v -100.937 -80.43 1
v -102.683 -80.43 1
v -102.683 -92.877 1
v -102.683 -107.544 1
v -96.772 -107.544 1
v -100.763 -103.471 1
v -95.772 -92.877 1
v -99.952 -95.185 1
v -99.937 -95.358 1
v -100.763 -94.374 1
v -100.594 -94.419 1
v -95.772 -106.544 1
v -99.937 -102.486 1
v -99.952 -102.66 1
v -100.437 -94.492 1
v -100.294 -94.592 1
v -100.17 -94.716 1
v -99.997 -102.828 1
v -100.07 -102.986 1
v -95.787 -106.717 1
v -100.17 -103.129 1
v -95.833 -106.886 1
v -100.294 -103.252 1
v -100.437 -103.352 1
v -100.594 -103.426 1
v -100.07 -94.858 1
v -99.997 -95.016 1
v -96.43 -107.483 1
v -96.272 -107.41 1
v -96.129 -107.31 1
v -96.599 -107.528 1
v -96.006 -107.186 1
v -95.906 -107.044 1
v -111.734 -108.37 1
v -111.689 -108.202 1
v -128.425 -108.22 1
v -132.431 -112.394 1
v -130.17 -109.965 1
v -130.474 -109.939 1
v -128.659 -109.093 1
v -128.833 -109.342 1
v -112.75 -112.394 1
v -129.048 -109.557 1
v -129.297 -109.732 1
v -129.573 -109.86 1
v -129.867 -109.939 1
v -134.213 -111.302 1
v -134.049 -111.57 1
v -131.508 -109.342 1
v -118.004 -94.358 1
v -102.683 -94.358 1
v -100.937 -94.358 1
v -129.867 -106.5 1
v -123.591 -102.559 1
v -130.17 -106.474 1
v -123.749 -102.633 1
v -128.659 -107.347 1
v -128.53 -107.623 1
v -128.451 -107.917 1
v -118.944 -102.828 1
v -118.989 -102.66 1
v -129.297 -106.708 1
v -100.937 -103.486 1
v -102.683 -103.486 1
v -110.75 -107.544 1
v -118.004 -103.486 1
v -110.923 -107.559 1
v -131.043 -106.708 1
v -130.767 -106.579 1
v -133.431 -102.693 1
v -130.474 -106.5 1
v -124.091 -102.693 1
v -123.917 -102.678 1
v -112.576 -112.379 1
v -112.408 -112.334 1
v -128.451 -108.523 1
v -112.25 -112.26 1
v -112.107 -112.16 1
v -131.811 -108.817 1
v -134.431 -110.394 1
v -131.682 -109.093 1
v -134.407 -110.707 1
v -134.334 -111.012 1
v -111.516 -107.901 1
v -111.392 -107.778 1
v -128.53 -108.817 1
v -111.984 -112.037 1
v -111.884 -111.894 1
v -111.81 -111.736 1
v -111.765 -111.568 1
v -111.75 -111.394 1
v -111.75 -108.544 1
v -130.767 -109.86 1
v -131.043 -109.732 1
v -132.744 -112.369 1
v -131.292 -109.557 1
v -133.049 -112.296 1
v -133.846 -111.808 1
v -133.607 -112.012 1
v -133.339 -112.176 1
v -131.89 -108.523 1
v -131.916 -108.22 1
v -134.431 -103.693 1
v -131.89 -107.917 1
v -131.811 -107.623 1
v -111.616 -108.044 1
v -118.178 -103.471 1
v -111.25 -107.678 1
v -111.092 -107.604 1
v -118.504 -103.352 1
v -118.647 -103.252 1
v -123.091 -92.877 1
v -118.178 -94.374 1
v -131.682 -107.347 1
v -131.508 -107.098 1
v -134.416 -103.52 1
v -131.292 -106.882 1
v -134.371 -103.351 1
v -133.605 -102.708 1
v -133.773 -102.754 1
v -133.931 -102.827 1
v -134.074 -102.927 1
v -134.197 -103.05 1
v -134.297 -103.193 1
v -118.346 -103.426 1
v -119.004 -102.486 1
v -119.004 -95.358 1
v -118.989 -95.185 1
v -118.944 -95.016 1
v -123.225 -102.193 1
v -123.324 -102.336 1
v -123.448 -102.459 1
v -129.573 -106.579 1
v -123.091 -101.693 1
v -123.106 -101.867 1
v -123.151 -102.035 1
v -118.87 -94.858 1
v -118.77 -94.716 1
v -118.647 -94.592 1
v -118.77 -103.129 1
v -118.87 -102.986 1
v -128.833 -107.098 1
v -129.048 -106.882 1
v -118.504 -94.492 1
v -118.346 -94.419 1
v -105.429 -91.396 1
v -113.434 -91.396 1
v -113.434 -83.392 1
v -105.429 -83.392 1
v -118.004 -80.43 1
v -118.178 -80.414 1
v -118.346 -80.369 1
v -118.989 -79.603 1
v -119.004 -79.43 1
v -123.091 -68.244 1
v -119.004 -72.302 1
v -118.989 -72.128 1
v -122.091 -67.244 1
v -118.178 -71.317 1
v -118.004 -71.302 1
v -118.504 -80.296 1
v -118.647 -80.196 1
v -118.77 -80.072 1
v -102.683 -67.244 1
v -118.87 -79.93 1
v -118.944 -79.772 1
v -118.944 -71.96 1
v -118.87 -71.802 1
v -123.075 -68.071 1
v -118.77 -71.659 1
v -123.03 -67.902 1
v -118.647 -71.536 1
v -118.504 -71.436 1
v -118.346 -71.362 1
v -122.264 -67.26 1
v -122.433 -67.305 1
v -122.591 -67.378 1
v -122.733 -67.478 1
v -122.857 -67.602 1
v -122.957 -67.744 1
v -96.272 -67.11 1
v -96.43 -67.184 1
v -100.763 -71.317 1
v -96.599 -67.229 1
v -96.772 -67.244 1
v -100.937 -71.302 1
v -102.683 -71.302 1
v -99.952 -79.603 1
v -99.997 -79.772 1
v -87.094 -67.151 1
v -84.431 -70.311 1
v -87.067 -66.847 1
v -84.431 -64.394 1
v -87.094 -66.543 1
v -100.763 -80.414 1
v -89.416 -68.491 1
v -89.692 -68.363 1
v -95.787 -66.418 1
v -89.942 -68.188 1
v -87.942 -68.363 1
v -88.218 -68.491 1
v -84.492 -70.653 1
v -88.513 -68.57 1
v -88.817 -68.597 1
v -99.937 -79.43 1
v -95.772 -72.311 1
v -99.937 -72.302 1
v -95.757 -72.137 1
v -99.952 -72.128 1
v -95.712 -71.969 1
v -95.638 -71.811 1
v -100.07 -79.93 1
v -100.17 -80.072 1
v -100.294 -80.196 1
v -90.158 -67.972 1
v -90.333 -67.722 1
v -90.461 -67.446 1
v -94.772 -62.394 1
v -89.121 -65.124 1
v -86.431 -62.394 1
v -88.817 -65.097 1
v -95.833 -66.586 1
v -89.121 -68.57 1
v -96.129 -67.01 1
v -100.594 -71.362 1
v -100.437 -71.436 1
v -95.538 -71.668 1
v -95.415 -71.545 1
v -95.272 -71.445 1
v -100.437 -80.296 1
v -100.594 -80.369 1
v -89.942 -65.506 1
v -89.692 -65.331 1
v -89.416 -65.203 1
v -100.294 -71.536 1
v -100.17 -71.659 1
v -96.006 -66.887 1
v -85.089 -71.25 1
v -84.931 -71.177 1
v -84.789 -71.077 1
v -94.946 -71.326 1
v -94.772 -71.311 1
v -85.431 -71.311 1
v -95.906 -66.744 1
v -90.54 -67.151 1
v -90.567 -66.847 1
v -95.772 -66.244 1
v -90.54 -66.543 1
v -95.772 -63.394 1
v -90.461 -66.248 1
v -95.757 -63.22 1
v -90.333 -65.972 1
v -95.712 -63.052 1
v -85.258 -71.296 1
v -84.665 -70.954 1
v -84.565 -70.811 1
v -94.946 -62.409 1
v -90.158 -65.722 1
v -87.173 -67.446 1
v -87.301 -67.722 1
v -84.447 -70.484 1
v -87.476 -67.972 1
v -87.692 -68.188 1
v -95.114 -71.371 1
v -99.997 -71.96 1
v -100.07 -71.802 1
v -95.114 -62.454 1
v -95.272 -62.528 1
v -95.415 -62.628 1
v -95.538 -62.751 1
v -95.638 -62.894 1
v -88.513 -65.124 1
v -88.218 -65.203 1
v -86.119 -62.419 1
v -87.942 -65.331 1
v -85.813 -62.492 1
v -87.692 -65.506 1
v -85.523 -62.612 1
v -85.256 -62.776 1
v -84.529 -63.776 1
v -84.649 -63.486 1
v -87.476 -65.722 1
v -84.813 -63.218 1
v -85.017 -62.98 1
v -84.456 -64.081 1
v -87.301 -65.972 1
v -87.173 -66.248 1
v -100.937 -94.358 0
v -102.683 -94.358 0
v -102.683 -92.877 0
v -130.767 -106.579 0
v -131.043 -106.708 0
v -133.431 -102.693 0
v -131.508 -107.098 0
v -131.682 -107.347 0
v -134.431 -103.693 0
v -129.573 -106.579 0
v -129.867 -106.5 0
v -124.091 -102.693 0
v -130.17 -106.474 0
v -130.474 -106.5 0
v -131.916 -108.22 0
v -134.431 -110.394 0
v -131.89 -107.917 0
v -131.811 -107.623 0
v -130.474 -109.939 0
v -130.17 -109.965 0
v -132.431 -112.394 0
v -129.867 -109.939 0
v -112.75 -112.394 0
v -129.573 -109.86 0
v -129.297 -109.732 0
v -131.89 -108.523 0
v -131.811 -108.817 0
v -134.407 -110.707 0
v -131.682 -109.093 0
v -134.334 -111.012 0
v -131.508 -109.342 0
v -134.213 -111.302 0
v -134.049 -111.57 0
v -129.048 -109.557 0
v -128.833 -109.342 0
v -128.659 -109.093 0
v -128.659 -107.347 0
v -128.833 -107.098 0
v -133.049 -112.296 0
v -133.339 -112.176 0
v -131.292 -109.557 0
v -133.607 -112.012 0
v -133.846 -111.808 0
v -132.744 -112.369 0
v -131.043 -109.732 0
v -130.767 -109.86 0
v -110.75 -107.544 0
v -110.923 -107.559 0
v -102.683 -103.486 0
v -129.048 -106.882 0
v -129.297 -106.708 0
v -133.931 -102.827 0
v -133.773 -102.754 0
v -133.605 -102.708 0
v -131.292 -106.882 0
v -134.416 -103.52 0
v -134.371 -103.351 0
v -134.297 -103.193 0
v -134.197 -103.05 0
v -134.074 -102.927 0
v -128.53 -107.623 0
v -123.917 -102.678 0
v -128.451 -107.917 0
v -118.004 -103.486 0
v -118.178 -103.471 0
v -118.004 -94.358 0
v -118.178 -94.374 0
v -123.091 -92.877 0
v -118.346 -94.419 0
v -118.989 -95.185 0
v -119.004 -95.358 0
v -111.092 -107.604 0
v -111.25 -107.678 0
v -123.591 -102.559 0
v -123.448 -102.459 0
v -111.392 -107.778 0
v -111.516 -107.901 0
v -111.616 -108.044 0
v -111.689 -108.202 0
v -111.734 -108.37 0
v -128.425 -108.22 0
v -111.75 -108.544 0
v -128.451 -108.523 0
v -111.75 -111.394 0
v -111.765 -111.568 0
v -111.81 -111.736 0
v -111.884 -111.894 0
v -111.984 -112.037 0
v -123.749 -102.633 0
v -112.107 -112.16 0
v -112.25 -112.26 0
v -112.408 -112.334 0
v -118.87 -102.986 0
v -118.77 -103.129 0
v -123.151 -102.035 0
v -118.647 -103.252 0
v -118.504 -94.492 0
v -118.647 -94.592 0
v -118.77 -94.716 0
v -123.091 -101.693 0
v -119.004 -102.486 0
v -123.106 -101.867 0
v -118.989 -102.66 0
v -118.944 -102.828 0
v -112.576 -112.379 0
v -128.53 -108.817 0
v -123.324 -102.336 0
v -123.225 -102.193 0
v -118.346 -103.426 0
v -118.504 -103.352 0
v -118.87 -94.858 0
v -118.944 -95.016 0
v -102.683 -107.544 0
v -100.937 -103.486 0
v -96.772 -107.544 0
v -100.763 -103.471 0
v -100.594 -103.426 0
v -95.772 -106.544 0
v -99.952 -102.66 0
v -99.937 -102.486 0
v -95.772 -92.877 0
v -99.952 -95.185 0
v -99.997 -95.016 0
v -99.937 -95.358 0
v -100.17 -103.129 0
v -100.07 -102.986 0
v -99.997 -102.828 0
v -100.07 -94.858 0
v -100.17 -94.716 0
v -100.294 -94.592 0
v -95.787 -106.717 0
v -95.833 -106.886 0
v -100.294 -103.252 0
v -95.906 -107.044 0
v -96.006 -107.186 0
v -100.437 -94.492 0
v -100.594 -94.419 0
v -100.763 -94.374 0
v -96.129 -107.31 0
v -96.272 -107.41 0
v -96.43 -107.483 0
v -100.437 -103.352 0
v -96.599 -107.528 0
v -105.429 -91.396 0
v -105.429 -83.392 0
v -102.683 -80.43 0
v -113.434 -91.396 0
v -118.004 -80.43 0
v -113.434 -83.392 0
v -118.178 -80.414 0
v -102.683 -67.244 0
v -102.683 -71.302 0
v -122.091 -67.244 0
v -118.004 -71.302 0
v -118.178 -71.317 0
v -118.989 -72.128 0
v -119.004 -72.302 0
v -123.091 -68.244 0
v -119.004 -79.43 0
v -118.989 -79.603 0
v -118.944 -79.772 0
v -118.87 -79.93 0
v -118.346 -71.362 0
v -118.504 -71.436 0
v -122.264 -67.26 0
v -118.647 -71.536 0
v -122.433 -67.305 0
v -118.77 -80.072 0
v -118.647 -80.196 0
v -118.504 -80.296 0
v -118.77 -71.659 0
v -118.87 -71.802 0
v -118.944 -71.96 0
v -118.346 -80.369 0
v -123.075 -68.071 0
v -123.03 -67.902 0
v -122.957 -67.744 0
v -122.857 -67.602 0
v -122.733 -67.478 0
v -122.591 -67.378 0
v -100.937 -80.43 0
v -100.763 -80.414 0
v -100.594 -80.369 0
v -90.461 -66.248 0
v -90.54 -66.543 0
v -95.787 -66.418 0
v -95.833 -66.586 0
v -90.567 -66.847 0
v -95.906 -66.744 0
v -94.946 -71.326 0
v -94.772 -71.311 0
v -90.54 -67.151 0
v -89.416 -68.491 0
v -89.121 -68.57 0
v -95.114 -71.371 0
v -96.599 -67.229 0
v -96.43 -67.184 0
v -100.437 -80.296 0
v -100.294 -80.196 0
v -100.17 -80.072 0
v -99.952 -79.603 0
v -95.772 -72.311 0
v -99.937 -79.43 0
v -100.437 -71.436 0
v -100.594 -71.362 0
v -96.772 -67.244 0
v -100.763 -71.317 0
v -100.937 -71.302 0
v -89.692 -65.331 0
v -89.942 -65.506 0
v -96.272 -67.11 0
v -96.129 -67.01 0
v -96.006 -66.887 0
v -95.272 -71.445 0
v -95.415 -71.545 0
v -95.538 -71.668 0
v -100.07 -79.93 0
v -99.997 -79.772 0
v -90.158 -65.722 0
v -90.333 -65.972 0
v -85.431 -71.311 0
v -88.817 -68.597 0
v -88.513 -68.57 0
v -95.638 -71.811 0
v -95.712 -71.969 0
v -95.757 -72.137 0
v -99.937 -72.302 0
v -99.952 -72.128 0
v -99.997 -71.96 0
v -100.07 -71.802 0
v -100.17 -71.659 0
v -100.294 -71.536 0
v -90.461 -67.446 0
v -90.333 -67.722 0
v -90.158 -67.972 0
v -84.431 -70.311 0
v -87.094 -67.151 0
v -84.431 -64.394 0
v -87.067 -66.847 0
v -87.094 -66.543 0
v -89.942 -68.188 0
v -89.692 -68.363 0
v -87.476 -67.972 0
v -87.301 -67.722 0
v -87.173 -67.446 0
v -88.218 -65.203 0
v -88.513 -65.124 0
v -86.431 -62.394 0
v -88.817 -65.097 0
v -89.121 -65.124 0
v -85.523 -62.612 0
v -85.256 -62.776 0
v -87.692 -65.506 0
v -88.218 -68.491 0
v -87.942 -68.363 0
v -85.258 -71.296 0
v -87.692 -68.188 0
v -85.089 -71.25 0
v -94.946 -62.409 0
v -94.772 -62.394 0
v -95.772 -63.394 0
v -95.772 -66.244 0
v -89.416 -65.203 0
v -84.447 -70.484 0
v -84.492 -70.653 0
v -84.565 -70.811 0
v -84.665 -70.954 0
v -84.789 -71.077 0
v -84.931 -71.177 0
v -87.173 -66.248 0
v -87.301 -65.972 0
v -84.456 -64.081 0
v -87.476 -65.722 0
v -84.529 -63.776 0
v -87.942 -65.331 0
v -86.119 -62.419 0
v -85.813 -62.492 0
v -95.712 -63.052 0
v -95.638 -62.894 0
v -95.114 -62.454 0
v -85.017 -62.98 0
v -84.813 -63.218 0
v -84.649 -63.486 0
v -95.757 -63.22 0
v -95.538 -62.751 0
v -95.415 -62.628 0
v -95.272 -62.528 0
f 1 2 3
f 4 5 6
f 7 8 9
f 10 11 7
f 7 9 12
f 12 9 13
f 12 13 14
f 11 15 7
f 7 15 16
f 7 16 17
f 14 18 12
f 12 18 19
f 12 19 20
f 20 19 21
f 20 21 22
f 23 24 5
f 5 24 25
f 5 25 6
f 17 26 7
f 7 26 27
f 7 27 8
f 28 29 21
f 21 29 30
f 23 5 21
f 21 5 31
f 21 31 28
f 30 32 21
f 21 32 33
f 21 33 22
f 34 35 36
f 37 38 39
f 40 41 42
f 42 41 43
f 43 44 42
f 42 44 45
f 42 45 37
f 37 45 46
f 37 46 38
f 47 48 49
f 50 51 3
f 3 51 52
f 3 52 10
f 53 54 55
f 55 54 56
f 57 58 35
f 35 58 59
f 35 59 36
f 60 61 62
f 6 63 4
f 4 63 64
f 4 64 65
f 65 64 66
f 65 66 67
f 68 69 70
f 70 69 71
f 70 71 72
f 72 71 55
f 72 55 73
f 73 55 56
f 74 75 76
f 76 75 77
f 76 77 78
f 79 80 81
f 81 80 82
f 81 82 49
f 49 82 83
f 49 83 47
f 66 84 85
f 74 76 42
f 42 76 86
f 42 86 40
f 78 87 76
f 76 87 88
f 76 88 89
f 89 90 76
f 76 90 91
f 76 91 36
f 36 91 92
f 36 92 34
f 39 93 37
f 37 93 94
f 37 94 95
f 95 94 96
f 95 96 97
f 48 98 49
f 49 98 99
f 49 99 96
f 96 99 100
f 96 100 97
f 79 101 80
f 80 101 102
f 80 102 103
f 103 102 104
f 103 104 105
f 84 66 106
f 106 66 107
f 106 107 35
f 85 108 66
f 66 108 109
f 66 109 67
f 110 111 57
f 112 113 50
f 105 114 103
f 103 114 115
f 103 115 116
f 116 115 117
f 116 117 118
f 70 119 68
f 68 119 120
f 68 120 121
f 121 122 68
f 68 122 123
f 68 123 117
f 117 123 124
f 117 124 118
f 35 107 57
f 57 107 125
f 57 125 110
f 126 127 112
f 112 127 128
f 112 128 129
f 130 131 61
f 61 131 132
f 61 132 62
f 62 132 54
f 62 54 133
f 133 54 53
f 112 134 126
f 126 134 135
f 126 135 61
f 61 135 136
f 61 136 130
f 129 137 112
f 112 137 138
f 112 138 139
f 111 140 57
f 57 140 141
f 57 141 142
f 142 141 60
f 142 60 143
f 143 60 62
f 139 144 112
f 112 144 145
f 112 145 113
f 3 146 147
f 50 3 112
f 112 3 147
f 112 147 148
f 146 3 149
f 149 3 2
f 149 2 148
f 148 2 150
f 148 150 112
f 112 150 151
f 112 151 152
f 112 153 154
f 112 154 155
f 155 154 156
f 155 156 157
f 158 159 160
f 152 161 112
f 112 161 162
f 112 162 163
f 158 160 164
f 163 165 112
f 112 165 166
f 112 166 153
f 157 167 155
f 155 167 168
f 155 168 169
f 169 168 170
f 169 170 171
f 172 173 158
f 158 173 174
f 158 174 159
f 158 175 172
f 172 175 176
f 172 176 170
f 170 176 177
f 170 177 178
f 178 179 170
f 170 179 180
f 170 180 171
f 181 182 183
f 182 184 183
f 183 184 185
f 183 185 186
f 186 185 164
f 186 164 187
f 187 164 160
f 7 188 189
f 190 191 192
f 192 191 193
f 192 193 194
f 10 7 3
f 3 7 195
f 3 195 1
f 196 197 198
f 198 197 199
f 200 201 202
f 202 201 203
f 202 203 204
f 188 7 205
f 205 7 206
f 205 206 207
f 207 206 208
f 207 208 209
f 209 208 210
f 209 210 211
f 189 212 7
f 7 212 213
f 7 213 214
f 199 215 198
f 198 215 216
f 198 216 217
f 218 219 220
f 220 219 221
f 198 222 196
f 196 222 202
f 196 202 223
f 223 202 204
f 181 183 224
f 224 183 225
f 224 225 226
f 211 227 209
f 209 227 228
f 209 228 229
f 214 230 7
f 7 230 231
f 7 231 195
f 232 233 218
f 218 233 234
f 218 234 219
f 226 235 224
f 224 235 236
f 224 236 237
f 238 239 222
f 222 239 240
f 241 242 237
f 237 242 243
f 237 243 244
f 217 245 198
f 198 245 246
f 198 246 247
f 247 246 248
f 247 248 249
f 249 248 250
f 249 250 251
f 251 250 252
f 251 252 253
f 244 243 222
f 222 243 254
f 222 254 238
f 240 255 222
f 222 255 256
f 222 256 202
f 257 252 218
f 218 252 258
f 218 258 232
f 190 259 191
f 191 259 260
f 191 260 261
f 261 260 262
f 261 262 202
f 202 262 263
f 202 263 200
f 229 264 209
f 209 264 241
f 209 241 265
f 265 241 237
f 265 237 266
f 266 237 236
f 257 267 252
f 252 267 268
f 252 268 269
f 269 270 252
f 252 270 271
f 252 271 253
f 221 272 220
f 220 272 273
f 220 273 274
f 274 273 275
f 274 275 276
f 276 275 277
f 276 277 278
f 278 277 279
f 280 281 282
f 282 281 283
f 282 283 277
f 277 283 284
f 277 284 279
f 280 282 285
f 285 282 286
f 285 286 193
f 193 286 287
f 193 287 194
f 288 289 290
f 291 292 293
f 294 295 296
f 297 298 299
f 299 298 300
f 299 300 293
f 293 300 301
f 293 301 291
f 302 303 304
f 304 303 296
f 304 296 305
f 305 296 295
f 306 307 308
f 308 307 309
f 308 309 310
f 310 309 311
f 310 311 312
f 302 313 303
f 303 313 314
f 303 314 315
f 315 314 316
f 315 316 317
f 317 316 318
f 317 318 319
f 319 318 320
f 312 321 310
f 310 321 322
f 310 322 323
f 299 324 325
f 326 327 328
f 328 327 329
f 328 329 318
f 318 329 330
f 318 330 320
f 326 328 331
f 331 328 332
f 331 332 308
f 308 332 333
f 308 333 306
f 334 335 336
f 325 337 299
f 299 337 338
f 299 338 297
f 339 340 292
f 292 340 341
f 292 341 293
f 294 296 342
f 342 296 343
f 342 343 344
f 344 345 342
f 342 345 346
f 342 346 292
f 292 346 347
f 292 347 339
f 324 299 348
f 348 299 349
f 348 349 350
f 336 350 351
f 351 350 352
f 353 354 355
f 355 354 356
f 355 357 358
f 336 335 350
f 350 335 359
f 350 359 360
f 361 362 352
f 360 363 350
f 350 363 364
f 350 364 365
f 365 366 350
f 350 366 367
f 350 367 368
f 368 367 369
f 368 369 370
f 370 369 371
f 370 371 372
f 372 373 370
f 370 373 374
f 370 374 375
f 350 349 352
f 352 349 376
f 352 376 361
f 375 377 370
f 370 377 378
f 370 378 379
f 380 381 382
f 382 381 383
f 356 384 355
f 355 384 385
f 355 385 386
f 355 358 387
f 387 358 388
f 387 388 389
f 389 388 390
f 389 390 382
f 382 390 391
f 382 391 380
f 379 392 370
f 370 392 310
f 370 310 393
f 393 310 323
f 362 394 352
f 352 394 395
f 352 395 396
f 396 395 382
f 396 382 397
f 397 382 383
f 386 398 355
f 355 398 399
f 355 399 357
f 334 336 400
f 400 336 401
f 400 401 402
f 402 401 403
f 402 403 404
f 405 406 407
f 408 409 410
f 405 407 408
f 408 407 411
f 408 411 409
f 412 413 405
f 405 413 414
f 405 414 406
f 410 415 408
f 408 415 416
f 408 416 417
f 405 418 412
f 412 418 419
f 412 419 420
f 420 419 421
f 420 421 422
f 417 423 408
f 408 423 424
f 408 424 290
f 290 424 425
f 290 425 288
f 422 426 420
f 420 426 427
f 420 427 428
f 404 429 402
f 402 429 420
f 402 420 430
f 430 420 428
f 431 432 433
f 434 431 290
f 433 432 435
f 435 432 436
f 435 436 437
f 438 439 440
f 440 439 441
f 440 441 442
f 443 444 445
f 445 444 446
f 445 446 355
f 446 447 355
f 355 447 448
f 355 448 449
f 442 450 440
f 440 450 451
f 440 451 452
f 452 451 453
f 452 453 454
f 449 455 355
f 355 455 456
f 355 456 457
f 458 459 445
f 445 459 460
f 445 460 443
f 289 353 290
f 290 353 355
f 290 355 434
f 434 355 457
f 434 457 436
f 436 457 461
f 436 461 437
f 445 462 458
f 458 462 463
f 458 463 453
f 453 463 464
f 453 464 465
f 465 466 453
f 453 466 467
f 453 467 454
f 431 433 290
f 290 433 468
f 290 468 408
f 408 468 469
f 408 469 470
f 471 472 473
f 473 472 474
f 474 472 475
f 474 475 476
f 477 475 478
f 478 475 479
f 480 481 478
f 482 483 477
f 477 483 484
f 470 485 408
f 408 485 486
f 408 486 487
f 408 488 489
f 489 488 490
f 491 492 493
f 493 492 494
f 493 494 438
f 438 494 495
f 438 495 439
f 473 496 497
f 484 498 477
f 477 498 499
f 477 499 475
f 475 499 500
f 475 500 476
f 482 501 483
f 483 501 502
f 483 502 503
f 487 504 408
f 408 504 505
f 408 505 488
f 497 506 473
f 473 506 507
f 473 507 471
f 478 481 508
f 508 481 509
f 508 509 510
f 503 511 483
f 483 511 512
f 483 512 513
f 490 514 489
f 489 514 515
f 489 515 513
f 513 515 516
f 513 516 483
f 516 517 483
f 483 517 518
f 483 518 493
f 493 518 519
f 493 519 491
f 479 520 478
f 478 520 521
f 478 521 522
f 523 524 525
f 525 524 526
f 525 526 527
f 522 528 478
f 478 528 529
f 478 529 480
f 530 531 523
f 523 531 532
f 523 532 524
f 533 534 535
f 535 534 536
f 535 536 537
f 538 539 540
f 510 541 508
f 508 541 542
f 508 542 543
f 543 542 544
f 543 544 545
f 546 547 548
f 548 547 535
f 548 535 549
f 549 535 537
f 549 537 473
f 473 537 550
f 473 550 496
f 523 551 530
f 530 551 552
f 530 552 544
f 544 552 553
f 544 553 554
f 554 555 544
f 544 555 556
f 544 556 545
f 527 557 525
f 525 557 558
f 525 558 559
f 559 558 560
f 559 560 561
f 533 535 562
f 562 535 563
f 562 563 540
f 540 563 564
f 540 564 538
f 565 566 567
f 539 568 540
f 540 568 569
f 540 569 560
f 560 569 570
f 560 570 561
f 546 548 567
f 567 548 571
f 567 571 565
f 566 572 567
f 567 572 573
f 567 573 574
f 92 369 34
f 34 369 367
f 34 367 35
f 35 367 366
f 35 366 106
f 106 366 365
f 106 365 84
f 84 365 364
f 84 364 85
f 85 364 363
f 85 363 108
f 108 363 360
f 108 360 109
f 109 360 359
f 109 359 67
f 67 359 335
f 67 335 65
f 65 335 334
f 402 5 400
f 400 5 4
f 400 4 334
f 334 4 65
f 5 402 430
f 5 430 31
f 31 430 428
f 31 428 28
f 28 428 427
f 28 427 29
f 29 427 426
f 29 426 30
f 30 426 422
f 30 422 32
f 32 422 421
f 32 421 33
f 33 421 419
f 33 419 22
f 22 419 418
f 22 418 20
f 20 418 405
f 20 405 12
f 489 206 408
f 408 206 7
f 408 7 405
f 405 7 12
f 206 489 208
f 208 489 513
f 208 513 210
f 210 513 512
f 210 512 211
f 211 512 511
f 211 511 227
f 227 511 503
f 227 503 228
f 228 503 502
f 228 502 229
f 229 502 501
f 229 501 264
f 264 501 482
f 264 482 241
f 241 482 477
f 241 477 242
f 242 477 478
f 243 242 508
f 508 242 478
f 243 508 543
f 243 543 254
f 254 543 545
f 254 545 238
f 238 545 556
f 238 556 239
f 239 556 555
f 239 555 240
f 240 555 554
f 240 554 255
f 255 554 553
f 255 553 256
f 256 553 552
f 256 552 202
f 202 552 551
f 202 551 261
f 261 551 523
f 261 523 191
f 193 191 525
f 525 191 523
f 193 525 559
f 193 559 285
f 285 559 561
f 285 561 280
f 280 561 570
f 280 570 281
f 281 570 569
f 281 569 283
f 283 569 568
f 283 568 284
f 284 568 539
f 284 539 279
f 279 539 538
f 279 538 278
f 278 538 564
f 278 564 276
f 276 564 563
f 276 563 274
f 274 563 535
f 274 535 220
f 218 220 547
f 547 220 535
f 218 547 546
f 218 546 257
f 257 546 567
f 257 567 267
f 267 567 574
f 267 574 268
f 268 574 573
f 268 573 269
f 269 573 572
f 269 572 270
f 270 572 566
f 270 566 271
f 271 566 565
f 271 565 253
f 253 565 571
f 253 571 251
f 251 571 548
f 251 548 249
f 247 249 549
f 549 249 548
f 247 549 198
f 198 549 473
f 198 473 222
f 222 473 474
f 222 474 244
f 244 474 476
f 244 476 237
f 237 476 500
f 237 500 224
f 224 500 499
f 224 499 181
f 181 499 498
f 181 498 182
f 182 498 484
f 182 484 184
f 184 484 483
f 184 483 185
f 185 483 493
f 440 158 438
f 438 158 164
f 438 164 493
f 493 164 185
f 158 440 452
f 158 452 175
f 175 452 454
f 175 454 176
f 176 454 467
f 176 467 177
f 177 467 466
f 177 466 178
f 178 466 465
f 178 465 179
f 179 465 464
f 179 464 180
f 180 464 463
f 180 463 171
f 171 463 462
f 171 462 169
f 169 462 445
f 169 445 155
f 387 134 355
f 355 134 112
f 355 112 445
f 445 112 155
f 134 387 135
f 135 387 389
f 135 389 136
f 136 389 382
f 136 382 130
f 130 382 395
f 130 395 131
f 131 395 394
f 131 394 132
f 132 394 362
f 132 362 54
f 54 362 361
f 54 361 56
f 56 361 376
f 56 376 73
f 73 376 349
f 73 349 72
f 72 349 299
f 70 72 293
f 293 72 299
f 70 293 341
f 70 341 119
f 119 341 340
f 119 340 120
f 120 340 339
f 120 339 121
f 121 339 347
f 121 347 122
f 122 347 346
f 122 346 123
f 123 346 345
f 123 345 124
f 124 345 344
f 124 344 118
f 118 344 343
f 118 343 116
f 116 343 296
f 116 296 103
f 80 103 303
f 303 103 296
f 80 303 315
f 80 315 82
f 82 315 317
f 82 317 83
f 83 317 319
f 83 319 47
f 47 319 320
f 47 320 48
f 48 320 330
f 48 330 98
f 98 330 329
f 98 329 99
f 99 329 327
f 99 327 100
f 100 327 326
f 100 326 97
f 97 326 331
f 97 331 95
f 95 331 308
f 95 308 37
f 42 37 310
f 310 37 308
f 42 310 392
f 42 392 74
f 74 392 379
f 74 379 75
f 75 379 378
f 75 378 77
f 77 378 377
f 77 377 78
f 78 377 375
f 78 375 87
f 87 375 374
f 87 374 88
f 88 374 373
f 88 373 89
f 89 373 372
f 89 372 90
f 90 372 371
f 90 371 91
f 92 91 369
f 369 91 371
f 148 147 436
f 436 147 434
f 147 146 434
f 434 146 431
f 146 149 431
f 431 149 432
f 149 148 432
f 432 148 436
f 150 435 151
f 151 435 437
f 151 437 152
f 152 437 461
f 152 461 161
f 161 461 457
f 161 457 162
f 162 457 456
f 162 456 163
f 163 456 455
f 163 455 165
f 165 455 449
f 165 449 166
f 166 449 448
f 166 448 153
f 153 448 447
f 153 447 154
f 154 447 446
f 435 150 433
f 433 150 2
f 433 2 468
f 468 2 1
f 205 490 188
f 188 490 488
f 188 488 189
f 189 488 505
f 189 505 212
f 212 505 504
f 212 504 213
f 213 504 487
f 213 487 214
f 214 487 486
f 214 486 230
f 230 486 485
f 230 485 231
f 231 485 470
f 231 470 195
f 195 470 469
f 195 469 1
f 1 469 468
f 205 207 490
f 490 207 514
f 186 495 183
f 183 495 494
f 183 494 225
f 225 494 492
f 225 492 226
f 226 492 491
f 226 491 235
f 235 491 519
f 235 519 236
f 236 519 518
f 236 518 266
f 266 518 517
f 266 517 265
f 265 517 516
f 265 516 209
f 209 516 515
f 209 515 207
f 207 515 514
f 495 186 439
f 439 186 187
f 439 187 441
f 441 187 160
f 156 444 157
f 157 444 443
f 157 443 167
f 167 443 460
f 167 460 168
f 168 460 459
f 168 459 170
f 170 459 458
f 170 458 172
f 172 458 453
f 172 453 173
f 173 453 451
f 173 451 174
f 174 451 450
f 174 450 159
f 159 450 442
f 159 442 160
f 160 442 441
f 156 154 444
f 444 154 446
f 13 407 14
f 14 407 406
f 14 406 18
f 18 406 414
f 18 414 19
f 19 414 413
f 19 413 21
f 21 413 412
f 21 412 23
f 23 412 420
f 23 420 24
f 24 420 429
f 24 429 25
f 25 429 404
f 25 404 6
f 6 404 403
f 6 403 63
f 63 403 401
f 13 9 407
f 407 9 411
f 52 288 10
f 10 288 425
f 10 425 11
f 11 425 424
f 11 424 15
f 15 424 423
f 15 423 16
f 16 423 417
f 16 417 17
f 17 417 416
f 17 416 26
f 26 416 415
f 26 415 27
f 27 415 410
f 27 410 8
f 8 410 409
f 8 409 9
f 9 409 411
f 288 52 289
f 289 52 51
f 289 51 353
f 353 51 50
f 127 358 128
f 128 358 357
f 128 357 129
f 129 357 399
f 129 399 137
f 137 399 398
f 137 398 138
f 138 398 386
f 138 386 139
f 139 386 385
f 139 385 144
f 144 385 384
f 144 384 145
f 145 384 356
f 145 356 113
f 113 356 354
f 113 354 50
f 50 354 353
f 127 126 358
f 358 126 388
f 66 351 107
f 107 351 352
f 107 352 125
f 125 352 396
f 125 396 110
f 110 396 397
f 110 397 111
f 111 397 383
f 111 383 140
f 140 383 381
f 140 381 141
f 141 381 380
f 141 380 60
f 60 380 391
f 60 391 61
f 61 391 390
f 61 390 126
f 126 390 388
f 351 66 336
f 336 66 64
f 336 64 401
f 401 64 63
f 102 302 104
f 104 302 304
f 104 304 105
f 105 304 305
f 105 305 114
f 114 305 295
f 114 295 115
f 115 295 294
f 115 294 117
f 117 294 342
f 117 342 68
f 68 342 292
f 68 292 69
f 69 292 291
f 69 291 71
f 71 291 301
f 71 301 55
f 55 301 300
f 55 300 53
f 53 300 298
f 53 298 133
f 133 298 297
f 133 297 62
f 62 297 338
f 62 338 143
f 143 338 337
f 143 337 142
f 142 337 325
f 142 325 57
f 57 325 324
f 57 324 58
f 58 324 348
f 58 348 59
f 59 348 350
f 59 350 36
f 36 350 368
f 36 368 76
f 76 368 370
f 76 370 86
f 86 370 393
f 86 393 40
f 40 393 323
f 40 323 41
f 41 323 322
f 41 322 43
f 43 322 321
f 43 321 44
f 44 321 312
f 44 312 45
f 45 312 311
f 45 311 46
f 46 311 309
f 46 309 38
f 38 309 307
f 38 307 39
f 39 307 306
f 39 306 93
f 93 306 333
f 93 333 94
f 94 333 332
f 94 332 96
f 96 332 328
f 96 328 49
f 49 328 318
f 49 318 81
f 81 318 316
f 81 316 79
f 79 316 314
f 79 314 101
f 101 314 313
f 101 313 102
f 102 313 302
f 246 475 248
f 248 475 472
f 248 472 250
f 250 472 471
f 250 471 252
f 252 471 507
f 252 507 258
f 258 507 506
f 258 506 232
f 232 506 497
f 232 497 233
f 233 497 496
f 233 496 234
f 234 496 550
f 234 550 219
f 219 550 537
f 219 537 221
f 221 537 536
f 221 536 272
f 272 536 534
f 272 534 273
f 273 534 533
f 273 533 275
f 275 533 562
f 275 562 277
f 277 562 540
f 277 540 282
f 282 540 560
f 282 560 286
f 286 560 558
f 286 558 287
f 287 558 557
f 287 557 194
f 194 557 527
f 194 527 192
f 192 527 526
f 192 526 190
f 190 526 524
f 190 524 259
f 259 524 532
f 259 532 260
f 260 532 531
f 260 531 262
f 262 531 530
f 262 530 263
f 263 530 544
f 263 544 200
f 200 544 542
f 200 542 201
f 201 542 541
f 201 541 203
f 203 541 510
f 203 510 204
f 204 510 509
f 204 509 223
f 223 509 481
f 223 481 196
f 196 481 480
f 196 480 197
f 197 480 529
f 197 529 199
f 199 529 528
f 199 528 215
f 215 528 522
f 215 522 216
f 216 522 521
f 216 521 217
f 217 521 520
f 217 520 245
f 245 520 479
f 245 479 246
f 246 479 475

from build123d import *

# Parameters (mm, degrees)
ESQUISSE1_R        = 1.745730463
ESQUISSE1_R_2      = 1.75
ESQUISSE1_W        = 8.004851144
ESQUISSE1_H        = 8.004851144
BOSS_EXTRU_1_DEPTH = 1


with BuildPart() as part:
    # Esquisse1 → Boss.-Extru.1 (new body)
    with BuildSketch(Plane.XY):
        with BuildLine():
            Line((-122.090539275, -67.2444), (-98.063455394, -67.2444))
            Line((-98.063455394, -67.2444), (-96.772260725, -67.2444))
            ThreePointArc((-96.772260725, -67.2444), (-96.065153944, -66.951506781), (-95.772260725, -66.2444))
            Line((-95.772260725, -66.2444), (-95.772260725, -63.394))
            ThreePointArc((-95.772260725, -63.394), (-95.479367507, -62.686893219), (-94.772260725, -62.394))
            Line((-94.772260725, -62.394), (-86.4314, -62.394))
            ThreePointArc((-86.4314, -62.394), (-85.017186438, -62.979786438), (-84.4314, -64.394))
            Line((-84.4314, -64.394), (-84.4314, -70.310741156))
            ThreePointArc((-84.4314, -70.310741156), (-84.724293219, -71.017847937), (-85.4314, -71.310741156))
            Line((-85.4314, -71.310741156), (-94.772260725, -71.310741156))
            ThreePointArc((-94.772260725, -71.310741156), (-95.479367507, -71.603634375), (-95.772260725, -72.310741156))
            Line((-95.772260725, -72.310741156), (-95.772260725, -106.5436))
            ThreePointArc((-95.772260725, -106.5436), (-96.065153944, -107.250706781), (-96.772260725, -107.5436))
            Line((-96.772260725, -107.5436), (-110.749678549, -107.5436))
            ThreePointArc((-110.749678549, -107.5436), (-111.45678533, -107.836493219), (-111.749678549, -108.5436))
            Line((-111.749678549, -108.5436), (-111.749678549, -111.394))
            ThreePointArc((-111.749678549, -111.394), (-112.042571768, -112.101106781), (-112.749678549, -112.394))
            Line((-112.749678549, -112.394), (-132.4314, -112.394))
            ThreePointArc((-132.4314, -112.394), (-133.845613562, -111.808213562), (-134.4314, -110.394))
            Line((-134.4314, -110.394), (-134.4314, -103.6932))
            ThreePointArc((-134.4314, -103.6932), (-134.138506781, -102.986093219), (-133.4314, -102.6932))
            Line((-133.4314, -102.6932), (-124.090539275, -102.6932))
            ThreePointArc((-124.090539275, -102.6932), (-123.383432493, -102.400306781), (-123.090539275, -101.6932))
            Line((-123.090539275, -101.6932), (-123.090539275, -68.2444))
            ThreePointArc((-123.090539275, -68.2444), (-122.797646056, -67.537293219), (-122.090539275, -67.2444))
        make_face()
        with Locations((-130.170361884, -108.219670908)):
            Circle(ESQUISSE1_R, mode=Mode.SUBTRACT)
        with Locations((-88.817, -66.847)):
            Circle(ESQUISSE1_R_2, mode=Mode.SUBTRACT)
        with Locations((-109.4314, -87.394)):
            Rectangle(ESQUISSE1_W, ESQUISSE1_H, mode=Mode.SUBTRACT)
        with BuildLine():
            Line((-118.004092872, -71.30163173), (-100.936518074, -71.30163173))
            ThreePointArc((-100.936518074, -71.30163173), (-100.229411293, -71.594524949), (-99.936518074, -72.30163173))
            Line((-99.936518074, -72.30163173), (-99.936518074, -79.429611883))
            ThreePointArc((-99.936518074, -79.429611883), (-100.229411293, -80.136718664), (-100.936518074, -80.429611883))
            Line((-100.936518074, -80.429611883), (-118.004092872, -80.429611883))
            ThreePointArc((-118.004092872, -80.429611883), (-118.711199653, -80.136718664), (-119.004092872, -79.429611883))
            Line((-119.004092872, -79.429611883), (-119.004092872, -72.30163173))
            ThreePointArc((-119.004092872, -72.30163173), (-118.711199653, -71.594524949), (-118.004092872, -71.30163173))
        make_face(mode=Mode.SUBTRACT)
        with BuildLine():
            Line((-118.004092872, -103.48636827), (-100.936518074, -103.48636827))
            ThreePointArc((-100.936518074, -103.48636827), (-100.229411293, -103.193475051), (-99.936518074, -102.48636827))
            Line((-99.936518074, -102.48636827), (-99.936518074, -95.358388117))
            ThreePointArc((-99.936518074, -95.358388117), (-100.229411293, -94.651281336), (-100.936518074, -94.358388117))
            Line((-100.936518074, -94.358388117), (-118.004092872, -94.358388117))
            ThreePointArc((-118.004092872, -94.358388117), (-118.711199653, -94.651281336), (-119.004092872, -95.358388117))
            Line((-119.004092872, -95.358388117), (-119.004092872, -102.48636827))
            ThreePointArc((-119.004092872, -102.48636827), (-118.711199653, -103.193475051), (-118.004092872, -103.48636827))
        make_face(mode=Mode.SUBTRACT)
    extrude(amount=BOSS_EXTRU_1_DEPTH)


solid = part.part
